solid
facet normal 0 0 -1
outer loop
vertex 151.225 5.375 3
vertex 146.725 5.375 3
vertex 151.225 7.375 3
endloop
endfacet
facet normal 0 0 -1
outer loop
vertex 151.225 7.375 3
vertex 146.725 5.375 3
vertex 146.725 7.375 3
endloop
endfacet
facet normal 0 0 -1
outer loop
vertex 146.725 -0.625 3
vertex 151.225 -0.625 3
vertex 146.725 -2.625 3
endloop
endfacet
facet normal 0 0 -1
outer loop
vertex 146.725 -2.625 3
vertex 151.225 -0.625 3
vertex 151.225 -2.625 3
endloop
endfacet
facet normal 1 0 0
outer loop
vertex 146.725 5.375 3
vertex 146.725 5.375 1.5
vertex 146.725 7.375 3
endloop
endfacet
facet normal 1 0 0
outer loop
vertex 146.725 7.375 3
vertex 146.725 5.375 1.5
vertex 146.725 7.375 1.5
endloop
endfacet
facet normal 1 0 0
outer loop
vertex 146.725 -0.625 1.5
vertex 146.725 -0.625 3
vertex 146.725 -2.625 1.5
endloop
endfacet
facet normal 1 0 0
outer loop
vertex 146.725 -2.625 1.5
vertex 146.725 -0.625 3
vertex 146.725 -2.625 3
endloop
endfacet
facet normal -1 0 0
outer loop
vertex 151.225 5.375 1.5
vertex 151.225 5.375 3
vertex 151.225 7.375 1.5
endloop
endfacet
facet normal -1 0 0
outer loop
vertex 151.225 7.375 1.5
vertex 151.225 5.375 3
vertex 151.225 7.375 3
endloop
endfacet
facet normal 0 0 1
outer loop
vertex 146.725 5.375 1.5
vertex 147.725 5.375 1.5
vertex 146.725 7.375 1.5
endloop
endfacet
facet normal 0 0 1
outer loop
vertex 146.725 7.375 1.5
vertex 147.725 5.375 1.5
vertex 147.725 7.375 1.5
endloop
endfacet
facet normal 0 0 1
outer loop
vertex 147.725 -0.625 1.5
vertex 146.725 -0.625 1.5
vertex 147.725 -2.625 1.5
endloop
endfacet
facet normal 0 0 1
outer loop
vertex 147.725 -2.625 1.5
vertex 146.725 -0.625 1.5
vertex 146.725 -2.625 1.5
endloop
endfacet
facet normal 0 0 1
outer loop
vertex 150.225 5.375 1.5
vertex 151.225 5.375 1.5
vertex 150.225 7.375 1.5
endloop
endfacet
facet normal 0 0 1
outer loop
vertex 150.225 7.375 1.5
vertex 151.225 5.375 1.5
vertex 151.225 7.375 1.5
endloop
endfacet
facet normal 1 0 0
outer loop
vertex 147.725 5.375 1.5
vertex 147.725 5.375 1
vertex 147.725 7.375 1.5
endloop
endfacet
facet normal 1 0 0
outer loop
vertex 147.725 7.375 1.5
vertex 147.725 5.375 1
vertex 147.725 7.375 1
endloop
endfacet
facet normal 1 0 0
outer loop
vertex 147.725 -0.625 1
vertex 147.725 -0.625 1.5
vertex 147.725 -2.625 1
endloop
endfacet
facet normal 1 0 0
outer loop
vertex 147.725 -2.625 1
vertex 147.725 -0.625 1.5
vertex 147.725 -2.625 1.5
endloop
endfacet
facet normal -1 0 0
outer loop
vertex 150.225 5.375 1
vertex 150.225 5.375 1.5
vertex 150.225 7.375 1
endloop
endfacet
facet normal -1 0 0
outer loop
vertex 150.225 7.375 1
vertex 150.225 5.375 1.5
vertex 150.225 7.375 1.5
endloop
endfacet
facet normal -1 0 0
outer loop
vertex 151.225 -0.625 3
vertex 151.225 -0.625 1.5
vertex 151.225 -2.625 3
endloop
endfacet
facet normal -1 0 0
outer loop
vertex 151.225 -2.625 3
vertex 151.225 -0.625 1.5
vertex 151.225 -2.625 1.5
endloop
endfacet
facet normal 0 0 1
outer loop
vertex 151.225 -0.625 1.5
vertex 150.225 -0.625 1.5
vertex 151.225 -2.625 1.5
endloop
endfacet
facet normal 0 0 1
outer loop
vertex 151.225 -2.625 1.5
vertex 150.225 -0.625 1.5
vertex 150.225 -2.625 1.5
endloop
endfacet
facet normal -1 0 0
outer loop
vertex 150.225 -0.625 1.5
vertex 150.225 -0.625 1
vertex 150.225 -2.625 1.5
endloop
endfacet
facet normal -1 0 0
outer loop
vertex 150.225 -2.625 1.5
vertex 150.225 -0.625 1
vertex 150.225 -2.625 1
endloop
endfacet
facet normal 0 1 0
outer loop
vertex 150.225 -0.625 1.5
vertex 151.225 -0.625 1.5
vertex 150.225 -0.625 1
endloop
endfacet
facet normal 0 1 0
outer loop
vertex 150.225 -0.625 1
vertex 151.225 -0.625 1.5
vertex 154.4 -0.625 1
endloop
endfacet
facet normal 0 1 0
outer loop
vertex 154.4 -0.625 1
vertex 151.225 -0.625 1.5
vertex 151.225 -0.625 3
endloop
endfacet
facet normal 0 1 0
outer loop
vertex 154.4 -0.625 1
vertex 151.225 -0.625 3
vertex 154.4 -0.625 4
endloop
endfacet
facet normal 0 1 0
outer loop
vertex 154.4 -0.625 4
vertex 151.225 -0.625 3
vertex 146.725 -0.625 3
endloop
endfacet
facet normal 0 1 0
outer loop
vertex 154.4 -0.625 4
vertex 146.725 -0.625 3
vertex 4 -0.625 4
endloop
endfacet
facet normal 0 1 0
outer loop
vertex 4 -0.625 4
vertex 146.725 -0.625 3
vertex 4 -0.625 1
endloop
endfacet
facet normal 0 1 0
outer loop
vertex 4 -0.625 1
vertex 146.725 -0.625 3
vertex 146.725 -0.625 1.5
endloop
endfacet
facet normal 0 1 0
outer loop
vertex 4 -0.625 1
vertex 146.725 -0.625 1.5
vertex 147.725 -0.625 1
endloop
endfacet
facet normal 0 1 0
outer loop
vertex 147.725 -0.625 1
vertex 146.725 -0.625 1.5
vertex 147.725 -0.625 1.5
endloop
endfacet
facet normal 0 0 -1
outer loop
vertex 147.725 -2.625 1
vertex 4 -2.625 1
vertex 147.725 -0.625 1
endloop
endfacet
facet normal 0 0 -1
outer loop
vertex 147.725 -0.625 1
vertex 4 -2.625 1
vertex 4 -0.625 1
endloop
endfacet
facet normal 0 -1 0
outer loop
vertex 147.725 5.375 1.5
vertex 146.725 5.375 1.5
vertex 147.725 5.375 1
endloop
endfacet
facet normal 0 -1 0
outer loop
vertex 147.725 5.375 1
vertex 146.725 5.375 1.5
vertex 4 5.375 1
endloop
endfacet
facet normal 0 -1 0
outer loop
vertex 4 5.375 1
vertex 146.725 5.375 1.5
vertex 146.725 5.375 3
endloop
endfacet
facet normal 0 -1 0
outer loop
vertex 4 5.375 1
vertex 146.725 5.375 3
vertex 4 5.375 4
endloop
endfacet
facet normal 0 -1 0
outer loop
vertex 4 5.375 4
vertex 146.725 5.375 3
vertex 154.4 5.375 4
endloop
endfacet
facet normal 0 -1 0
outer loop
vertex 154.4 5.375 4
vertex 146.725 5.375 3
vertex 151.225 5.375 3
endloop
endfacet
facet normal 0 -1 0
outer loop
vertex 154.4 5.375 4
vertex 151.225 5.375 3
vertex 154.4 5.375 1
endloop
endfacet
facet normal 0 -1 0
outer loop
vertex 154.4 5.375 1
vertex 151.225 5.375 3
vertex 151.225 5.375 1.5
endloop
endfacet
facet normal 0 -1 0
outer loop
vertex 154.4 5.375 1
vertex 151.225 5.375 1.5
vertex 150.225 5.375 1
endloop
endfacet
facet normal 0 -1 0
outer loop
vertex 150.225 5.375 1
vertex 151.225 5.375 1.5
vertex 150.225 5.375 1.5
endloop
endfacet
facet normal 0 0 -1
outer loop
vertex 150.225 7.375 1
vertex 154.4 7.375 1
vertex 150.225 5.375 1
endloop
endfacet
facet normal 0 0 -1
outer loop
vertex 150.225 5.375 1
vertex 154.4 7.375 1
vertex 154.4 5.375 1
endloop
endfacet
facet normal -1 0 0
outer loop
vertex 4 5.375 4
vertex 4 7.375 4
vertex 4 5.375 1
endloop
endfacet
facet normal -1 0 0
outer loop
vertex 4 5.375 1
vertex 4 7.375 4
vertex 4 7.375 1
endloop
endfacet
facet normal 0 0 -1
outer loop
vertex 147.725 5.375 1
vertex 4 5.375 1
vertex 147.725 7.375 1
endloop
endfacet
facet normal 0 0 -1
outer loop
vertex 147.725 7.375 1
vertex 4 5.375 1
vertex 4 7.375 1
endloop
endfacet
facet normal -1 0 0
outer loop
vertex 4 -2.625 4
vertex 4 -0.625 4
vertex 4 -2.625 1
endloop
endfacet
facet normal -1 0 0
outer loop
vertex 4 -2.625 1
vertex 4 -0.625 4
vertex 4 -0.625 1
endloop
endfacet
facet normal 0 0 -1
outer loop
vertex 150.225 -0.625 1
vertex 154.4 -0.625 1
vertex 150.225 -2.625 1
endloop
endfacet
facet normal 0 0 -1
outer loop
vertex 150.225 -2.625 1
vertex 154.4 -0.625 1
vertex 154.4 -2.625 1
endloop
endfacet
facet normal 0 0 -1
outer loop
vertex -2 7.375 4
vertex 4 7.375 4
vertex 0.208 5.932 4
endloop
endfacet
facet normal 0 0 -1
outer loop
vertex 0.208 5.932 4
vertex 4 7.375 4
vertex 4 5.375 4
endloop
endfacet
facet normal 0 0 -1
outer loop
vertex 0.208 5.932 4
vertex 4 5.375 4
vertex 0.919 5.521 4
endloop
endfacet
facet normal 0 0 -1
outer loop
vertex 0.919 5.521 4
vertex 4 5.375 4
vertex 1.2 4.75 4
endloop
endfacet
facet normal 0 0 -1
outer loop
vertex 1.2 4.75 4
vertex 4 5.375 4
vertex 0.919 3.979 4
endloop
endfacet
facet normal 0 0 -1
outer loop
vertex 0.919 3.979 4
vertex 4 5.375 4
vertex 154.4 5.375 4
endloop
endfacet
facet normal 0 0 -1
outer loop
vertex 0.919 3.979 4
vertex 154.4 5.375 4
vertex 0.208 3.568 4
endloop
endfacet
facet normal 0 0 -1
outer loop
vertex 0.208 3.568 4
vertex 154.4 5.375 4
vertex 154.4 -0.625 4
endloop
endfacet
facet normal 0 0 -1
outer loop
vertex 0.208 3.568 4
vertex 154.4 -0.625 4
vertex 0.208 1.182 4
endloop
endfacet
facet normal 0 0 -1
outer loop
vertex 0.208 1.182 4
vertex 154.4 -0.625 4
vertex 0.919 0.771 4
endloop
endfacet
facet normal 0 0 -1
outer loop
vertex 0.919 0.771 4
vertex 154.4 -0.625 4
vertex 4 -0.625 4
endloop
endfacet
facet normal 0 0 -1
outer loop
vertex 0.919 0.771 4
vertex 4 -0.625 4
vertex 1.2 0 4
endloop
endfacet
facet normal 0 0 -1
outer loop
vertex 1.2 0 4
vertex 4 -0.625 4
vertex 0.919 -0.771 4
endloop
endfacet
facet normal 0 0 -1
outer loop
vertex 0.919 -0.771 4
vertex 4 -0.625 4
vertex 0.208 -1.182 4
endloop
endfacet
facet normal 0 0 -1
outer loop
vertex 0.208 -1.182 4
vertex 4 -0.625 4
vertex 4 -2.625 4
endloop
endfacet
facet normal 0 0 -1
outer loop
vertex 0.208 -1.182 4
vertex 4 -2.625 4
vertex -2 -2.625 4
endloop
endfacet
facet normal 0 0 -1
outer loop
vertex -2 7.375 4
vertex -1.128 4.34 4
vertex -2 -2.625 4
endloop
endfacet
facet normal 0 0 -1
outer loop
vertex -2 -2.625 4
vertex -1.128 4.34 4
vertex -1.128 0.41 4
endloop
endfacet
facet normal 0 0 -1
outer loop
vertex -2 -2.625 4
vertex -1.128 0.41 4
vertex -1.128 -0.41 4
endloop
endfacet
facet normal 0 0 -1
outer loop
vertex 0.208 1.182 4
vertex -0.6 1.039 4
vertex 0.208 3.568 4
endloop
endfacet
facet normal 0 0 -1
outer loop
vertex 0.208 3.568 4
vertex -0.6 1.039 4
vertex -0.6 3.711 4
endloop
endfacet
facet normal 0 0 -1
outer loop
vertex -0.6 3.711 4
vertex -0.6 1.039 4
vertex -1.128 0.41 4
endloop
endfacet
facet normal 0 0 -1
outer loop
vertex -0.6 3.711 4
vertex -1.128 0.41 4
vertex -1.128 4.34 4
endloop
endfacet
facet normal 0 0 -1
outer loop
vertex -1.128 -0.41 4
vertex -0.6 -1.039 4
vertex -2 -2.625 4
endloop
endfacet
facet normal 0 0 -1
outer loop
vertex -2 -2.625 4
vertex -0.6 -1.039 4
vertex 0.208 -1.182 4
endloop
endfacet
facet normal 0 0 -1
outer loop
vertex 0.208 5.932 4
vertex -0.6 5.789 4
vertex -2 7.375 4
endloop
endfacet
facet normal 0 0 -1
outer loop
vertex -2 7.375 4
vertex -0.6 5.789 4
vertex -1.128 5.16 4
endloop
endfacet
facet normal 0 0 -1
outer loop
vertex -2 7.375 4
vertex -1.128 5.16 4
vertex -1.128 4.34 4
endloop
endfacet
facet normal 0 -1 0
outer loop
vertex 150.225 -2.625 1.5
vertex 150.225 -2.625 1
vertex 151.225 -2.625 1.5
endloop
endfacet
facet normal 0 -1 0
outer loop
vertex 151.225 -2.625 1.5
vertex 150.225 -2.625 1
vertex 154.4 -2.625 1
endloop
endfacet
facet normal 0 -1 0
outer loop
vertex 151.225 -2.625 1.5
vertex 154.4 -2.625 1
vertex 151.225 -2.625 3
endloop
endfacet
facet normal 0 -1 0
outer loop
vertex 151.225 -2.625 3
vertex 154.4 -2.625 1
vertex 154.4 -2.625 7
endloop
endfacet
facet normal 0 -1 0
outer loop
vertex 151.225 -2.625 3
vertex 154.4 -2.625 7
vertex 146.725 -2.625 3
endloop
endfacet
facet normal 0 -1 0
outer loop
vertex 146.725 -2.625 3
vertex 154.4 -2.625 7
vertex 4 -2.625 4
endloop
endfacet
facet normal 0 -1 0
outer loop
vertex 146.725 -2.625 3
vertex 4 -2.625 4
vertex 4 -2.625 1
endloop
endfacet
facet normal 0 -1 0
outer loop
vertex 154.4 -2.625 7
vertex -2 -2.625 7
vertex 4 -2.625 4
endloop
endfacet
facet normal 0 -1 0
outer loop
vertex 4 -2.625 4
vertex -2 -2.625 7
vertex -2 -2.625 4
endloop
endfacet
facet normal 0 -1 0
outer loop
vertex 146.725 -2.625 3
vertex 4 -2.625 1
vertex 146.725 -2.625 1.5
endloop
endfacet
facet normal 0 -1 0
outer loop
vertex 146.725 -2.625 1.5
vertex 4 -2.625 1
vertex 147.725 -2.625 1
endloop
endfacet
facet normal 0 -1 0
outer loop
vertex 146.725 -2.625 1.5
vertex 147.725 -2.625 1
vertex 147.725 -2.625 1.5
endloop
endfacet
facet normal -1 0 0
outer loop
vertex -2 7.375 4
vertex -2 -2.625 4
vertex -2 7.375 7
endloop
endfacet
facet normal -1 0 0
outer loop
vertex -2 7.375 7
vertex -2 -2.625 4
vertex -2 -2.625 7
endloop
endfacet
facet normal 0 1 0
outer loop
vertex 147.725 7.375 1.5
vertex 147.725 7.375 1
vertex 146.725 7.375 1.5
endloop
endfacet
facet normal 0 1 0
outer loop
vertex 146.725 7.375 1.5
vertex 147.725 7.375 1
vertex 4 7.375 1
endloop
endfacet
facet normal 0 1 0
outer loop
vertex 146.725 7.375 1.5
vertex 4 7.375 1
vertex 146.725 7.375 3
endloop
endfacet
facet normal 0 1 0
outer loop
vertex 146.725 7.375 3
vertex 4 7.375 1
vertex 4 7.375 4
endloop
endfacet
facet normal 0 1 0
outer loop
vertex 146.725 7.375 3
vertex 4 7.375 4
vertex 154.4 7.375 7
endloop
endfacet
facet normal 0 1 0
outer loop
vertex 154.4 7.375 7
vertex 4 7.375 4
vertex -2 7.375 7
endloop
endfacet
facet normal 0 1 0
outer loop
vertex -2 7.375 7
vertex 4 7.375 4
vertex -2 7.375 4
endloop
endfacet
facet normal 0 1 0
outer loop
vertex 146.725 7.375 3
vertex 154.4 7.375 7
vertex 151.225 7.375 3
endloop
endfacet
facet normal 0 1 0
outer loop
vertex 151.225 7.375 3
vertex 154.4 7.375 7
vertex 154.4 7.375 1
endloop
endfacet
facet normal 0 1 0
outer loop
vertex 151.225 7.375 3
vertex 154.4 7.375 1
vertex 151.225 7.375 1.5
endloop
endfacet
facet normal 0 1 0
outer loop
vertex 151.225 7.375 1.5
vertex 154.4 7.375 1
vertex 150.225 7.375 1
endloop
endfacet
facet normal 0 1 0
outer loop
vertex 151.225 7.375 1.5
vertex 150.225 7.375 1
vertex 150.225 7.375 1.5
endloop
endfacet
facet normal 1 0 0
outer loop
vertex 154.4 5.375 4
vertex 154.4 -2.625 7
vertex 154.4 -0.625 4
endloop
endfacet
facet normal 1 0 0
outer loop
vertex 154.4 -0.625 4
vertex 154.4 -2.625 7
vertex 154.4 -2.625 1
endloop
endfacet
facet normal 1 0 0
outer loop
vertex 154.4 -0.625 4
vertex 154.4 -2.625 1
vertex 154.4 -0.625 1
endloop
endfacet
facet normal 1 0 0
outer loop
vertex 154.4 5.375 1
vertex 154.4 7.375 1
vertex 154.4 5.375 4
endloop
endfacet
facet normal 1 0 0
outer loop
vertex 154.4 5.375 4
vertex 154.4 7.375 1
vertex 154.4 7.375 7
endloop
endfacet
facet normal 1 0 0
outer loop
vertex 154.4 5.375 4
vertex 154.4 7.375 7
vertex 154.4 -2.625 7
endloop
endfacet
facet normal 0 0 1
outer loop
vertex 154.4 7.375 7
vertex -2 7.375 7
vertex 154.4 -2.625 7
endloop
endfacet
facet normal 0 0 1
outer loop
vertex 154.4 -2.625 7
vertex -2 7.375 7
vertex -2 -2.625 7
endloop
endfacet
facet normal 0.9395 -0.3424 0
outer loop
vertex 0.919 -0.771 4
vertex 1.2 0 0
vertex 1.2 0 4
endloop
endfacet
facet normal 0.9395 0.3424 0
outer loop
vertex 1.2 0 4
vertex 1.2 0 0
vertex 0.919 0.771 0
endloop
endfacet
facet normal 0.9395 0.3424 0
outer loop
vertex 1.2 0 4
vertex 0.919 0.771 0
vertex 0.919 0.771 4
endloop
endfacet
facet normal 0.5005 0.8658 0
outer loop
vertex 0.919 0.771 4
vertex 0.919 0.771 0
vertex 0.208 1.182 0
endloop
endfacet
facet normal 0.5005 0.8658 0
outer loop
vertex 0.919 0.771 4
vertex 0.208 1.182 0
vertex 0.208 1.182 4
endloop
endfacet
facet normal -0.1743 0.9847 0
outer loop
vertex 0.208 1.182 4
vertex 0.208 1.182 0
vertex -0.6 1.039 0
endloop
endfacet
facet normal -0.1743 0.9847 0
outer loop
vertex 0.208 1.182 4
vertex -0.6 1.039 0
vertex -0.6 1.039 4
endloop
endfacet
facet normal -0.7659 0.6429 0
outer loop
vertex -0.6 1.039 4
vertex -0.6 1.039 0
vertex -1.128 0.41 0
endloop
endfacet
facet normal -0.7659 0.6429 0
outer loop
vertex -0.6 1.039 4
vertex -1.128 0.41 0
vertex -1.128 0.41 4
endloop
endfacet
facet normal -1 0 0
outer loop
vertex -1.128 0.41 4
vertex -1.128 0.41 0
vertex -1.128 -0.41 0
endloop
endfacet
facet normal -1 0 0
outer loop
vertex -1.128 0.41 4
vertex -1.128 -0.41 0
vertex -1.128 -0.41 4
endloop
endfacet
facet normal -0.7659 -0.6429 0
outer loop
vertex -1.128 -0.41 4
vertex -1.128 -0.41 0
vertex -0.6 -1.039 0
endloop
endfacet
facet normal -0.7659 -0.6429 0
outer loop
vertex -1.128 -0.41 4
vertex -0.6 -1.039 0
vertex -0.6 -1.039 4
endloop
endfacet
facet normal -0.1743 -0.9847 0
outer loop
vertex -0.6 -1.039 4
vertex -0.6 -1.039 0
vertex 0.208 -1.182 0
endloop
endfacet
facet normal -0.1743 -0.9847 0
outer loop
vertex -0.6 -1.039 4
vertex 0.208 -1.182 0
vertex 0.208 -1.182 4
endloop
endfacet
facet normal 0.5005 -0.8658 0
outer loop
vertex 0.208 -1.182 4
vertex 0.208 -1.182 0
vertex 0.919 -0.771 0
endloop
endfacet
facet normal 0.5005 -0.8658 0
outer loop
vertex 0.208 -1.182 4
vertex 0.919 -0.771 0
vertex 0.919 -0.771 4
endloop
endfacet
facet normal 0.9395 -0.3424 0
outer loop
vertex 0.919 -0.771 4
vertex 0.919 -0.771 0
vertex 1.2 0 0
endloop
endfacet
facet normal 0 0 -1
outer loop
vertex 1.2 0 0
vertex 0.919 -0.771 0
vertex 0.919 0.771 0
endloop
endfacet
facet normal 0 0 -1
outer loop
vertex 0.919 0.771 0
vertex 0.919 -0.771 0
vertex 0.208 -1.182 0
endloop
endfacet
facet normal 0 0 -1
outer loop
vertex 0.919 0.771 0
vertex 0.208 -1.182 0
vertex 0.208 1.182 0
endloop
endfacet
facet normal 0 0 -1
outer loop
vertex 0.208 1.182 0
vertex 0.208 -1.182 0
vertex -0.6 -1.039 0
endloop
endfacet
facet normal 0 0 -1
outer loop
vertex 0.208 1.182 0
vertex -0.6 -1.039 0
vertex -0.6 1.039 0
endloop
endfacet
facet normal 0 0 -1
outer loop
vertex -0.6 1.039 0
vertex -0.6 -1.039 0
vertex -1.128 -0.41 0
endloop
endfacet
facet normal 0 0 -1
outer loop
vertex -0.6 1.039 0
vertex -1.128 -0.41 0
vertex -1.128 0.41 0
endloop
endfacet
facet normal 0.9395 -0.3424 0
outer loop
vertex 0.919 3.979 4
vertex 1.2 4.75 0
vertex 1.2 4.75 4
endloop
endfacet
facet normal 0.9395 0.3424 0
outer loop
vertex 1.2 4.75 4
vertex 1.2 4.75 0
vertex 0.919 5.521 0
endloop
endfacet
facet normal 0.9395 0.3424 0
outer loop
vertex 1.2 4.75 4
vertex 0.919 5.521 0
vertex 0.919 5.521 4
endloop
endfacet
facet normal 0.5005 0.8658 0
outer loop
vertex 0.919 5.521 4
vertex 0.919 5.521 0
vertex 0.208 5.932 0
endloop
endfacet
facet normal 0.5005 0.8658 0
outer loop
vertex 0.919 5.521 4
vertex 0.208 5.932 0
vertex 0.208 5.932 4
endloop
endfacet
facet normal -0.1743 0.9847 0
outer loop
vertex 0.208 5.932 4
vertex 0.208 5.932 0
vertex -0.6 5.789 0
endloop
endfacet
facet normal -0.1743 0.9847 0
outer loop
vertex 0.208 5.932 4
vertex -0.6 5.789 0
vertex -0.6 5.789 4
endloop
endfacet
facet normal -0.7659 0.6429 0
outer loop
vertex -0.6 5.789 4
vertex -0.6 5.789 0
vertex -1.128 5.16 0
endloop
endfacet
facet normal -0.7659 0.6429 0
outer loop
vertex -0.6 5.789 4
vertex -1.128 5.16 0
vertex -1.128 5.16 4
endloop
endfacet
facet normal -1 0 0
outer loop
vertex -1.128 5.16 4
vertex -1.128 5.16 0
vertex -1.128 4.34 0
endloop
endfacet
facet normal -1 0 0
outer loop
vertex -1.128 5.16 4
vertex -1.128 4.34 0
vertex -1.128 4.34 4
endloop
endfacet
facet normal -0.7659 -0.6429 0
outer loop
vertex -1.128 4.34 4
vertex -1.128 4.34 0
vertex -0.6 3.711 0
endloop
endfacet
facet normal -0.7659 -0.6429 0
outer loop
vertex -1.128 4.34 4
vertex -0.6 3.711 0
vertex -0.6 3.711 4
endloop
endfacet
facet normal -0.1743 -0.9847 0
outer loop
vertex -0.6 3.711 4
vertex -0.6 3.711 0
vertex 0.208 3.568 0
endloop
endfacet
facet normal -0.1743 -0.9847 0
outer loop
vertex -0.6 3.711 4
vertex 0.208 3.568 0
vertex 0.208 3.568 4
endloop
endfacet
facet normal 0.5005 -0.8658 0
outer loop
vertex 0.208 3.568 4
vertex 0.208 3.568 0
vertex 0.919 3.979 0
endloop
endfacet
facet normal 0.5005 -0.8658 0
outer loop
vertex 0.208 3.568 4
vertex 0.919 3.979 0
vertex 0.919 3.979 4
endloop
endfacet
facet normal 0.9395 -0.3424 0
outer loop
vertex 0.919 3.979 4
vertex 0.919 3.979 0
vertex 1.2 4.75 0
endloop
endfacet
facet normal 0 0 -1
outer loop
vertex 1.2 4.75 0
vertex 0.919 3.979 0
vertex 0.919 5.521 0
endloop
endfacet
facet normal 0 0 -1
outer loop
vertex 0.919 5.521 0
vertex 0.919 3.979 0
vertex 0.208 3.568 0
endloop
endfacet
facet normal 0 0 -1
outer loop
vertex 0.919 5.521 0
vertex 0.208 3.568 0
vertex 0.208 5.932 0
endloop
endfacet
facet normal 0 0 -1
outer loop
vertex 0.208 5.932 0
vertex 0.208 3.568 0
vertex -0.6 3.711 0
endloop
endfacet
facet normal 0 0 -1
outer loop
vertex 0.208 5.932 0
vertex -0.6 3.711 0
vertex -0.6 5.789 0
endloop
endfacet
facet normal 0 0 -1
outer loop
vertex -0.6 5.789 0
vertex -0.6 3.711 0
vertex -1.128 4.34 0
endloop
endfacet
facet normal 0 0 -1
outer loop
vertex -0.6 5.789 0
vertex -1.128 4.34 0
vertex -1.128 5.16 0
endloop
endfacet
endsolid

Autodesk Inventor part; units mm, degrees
ref_plane "YZ Plane" through (0, 0, 0) normal (1, 0, 0) x (0, 1, 0)
ref_plane "XZ Plane" through (0, 0, 0) normal (0, 1, 0) x (-1, 0, 0)
ref_plane "XY Plane" through (0, 0, 0) normal (0, 0, 1) x (1, 0, 0)
sketch "Esboço1" plane through (0, 0, 0) normal (0, 0, 1) x (1, 0, 0)
  circle A0 centre (0, 0) radius 1.2
  line L0 (0, 0) -> (0, 4.75) construction
  circle A1 centre (0, 4.75) radius 1.2
  dimension "d0" = 2.4
  dimension "d1" = 4.75
  dimension "d2" = 2.4
extrude "Extrusão1" add sketch "Esboço1" along normal blind 4
sketch "Esboço2" plane through (0, 4.75, 4) normal (0, 0, 1) x (1, 0, 0)
  circle A0 centre (0, -4.75) radius 1.2 projected
  line L0 (0, -4.75) -> (0, -2.375) construction
  line L1 (0, -2.375) -> (-2, -2.375) construction
  line L2 (-2, -2.375) -> (-2, 2.625)
  line L3 (-2, -2.375) -> (-2, -7.375)
  line L4 (-2, 2.625) -> (154.4, 2.625)
  line L5 (-2, -7.375) -> (154.4, -7.375)
  line L6 (154.4, -7.375) -> (154.4, 2.625)
  dimension "d9" = 2.375
  dimension "d10" = 2
  dimension "d11" = 5
  dimension "d12" = 5
  dimension "d13" = 156.4
  dimension "d14" = 156.4
extrude "Extrusão2" add sketch "Esboço2" along normal blind 3 contours A0 | L2 L4 L6 L5 L3
sketch "Esboço3" plane through (0, 4.75, 4) normal (0, 0, -1) x (-1, 0, 0)
  circle A0 centre (0, 0) radius 1.2 projected
  line L0 (0, 0) -> (0, 2.625) construction
  line L1 (-154.4, 2.625) -> (2, 2.625) projected
  line L2 (0, 2.625) -> (-4, 2.625) construction
  line L3 (-4, 2.625) -> (-4, 0.625)
  line L4 (-4, 0.625) -> (-154.4, 0.625)
  line L5 (-154.4, 0.625) -> (-154.4, 2.625)
  line L6 (-154.4, 2.625) -> (-4, 2.625)
  line L7 (2, 2.625) -> (2, -7.375) projected
  line L8 (2, -2.375) -> (-158, -2.375) construction
  line L9 (-4, -7.375) -> (-4, -5.375)
  line L10 (-4, -5.375) -> (-154.4, -5.375)
  line L11 (-154.4, -5.375) -> (-154.4, -7.375)
  line L12 (-154.4, -7.375) -> (-4, -7.375)
  point P0 (0, -4.75)
  dimension "d19" = 4
  dimension "d20" = 2
  dimension "d21" = 150.4
extrude "Extrusão3" add sketch "Esboço3" along normal blind 3 contours L1 L3 L4 L5 | L12 L11 L10 L9
sketch "Esboço4" plane through (-2, 7.375, 7) normal (0, 1, 0) x (1, 0, 0)
  line L0 (6, 3) -> (6, 6) projected
  line L1 (6, 4.5) -> (150.975, 4.5) construction
  line L2 (150.975, 4.5) -> (152.225, 4.5) construction
  line L3 (6, 3) -> (156.4, 3) projected
  line L4 (150.975, 4.5) -> (149.725, 4.5) construction
  line L5 (149.725, 5.5) -> (149.725, 6)
  line L6 (149.725, 6) -> (152.225, 6)
  line L7 (156.4, 6) -> (6, 6) projected
  line L8 (149.725, 6) -> (149.725, 5.5)
  line L9 (149.725, 5.5) -> (148.725, 5.5)
  line L10 (148.725, 5.5) -> (148.725, 4)
  line L11 (148.725, 4) -> (153.225, 4)
  line L12 (153.225, 4) -> (153.225, 5.5)
  line L13 (153.225, 5.5) -> (152.225, 5.5)
  line L14 (152.225, 5.5) -> (152.225, 6)
  point P0 (2, 7)
  point P1 (148.725, 4.5)
  point P2 (148.725, 3)
  point P3 (153.225, 3)
  dimension "d24" = 144.975
  dimension "d25" = 1.25
  dimension "d26" = 1.25
  dimension "d27" = 1
  dimension "d31" = 0.5
  dimension "d32" = 1.5
  dimension "d33" = 1
  dimension "d34" = 1.5
  dimension "d35" = 1
  dimension "d36" = 1
  dimension "d37" = 1
  dimension "d38" = 0.5
extrude "Extrusão4" cut sketch "Esboço4" against normal up to surface (10 mm away)
properties part number "Wiper-supportipt"
